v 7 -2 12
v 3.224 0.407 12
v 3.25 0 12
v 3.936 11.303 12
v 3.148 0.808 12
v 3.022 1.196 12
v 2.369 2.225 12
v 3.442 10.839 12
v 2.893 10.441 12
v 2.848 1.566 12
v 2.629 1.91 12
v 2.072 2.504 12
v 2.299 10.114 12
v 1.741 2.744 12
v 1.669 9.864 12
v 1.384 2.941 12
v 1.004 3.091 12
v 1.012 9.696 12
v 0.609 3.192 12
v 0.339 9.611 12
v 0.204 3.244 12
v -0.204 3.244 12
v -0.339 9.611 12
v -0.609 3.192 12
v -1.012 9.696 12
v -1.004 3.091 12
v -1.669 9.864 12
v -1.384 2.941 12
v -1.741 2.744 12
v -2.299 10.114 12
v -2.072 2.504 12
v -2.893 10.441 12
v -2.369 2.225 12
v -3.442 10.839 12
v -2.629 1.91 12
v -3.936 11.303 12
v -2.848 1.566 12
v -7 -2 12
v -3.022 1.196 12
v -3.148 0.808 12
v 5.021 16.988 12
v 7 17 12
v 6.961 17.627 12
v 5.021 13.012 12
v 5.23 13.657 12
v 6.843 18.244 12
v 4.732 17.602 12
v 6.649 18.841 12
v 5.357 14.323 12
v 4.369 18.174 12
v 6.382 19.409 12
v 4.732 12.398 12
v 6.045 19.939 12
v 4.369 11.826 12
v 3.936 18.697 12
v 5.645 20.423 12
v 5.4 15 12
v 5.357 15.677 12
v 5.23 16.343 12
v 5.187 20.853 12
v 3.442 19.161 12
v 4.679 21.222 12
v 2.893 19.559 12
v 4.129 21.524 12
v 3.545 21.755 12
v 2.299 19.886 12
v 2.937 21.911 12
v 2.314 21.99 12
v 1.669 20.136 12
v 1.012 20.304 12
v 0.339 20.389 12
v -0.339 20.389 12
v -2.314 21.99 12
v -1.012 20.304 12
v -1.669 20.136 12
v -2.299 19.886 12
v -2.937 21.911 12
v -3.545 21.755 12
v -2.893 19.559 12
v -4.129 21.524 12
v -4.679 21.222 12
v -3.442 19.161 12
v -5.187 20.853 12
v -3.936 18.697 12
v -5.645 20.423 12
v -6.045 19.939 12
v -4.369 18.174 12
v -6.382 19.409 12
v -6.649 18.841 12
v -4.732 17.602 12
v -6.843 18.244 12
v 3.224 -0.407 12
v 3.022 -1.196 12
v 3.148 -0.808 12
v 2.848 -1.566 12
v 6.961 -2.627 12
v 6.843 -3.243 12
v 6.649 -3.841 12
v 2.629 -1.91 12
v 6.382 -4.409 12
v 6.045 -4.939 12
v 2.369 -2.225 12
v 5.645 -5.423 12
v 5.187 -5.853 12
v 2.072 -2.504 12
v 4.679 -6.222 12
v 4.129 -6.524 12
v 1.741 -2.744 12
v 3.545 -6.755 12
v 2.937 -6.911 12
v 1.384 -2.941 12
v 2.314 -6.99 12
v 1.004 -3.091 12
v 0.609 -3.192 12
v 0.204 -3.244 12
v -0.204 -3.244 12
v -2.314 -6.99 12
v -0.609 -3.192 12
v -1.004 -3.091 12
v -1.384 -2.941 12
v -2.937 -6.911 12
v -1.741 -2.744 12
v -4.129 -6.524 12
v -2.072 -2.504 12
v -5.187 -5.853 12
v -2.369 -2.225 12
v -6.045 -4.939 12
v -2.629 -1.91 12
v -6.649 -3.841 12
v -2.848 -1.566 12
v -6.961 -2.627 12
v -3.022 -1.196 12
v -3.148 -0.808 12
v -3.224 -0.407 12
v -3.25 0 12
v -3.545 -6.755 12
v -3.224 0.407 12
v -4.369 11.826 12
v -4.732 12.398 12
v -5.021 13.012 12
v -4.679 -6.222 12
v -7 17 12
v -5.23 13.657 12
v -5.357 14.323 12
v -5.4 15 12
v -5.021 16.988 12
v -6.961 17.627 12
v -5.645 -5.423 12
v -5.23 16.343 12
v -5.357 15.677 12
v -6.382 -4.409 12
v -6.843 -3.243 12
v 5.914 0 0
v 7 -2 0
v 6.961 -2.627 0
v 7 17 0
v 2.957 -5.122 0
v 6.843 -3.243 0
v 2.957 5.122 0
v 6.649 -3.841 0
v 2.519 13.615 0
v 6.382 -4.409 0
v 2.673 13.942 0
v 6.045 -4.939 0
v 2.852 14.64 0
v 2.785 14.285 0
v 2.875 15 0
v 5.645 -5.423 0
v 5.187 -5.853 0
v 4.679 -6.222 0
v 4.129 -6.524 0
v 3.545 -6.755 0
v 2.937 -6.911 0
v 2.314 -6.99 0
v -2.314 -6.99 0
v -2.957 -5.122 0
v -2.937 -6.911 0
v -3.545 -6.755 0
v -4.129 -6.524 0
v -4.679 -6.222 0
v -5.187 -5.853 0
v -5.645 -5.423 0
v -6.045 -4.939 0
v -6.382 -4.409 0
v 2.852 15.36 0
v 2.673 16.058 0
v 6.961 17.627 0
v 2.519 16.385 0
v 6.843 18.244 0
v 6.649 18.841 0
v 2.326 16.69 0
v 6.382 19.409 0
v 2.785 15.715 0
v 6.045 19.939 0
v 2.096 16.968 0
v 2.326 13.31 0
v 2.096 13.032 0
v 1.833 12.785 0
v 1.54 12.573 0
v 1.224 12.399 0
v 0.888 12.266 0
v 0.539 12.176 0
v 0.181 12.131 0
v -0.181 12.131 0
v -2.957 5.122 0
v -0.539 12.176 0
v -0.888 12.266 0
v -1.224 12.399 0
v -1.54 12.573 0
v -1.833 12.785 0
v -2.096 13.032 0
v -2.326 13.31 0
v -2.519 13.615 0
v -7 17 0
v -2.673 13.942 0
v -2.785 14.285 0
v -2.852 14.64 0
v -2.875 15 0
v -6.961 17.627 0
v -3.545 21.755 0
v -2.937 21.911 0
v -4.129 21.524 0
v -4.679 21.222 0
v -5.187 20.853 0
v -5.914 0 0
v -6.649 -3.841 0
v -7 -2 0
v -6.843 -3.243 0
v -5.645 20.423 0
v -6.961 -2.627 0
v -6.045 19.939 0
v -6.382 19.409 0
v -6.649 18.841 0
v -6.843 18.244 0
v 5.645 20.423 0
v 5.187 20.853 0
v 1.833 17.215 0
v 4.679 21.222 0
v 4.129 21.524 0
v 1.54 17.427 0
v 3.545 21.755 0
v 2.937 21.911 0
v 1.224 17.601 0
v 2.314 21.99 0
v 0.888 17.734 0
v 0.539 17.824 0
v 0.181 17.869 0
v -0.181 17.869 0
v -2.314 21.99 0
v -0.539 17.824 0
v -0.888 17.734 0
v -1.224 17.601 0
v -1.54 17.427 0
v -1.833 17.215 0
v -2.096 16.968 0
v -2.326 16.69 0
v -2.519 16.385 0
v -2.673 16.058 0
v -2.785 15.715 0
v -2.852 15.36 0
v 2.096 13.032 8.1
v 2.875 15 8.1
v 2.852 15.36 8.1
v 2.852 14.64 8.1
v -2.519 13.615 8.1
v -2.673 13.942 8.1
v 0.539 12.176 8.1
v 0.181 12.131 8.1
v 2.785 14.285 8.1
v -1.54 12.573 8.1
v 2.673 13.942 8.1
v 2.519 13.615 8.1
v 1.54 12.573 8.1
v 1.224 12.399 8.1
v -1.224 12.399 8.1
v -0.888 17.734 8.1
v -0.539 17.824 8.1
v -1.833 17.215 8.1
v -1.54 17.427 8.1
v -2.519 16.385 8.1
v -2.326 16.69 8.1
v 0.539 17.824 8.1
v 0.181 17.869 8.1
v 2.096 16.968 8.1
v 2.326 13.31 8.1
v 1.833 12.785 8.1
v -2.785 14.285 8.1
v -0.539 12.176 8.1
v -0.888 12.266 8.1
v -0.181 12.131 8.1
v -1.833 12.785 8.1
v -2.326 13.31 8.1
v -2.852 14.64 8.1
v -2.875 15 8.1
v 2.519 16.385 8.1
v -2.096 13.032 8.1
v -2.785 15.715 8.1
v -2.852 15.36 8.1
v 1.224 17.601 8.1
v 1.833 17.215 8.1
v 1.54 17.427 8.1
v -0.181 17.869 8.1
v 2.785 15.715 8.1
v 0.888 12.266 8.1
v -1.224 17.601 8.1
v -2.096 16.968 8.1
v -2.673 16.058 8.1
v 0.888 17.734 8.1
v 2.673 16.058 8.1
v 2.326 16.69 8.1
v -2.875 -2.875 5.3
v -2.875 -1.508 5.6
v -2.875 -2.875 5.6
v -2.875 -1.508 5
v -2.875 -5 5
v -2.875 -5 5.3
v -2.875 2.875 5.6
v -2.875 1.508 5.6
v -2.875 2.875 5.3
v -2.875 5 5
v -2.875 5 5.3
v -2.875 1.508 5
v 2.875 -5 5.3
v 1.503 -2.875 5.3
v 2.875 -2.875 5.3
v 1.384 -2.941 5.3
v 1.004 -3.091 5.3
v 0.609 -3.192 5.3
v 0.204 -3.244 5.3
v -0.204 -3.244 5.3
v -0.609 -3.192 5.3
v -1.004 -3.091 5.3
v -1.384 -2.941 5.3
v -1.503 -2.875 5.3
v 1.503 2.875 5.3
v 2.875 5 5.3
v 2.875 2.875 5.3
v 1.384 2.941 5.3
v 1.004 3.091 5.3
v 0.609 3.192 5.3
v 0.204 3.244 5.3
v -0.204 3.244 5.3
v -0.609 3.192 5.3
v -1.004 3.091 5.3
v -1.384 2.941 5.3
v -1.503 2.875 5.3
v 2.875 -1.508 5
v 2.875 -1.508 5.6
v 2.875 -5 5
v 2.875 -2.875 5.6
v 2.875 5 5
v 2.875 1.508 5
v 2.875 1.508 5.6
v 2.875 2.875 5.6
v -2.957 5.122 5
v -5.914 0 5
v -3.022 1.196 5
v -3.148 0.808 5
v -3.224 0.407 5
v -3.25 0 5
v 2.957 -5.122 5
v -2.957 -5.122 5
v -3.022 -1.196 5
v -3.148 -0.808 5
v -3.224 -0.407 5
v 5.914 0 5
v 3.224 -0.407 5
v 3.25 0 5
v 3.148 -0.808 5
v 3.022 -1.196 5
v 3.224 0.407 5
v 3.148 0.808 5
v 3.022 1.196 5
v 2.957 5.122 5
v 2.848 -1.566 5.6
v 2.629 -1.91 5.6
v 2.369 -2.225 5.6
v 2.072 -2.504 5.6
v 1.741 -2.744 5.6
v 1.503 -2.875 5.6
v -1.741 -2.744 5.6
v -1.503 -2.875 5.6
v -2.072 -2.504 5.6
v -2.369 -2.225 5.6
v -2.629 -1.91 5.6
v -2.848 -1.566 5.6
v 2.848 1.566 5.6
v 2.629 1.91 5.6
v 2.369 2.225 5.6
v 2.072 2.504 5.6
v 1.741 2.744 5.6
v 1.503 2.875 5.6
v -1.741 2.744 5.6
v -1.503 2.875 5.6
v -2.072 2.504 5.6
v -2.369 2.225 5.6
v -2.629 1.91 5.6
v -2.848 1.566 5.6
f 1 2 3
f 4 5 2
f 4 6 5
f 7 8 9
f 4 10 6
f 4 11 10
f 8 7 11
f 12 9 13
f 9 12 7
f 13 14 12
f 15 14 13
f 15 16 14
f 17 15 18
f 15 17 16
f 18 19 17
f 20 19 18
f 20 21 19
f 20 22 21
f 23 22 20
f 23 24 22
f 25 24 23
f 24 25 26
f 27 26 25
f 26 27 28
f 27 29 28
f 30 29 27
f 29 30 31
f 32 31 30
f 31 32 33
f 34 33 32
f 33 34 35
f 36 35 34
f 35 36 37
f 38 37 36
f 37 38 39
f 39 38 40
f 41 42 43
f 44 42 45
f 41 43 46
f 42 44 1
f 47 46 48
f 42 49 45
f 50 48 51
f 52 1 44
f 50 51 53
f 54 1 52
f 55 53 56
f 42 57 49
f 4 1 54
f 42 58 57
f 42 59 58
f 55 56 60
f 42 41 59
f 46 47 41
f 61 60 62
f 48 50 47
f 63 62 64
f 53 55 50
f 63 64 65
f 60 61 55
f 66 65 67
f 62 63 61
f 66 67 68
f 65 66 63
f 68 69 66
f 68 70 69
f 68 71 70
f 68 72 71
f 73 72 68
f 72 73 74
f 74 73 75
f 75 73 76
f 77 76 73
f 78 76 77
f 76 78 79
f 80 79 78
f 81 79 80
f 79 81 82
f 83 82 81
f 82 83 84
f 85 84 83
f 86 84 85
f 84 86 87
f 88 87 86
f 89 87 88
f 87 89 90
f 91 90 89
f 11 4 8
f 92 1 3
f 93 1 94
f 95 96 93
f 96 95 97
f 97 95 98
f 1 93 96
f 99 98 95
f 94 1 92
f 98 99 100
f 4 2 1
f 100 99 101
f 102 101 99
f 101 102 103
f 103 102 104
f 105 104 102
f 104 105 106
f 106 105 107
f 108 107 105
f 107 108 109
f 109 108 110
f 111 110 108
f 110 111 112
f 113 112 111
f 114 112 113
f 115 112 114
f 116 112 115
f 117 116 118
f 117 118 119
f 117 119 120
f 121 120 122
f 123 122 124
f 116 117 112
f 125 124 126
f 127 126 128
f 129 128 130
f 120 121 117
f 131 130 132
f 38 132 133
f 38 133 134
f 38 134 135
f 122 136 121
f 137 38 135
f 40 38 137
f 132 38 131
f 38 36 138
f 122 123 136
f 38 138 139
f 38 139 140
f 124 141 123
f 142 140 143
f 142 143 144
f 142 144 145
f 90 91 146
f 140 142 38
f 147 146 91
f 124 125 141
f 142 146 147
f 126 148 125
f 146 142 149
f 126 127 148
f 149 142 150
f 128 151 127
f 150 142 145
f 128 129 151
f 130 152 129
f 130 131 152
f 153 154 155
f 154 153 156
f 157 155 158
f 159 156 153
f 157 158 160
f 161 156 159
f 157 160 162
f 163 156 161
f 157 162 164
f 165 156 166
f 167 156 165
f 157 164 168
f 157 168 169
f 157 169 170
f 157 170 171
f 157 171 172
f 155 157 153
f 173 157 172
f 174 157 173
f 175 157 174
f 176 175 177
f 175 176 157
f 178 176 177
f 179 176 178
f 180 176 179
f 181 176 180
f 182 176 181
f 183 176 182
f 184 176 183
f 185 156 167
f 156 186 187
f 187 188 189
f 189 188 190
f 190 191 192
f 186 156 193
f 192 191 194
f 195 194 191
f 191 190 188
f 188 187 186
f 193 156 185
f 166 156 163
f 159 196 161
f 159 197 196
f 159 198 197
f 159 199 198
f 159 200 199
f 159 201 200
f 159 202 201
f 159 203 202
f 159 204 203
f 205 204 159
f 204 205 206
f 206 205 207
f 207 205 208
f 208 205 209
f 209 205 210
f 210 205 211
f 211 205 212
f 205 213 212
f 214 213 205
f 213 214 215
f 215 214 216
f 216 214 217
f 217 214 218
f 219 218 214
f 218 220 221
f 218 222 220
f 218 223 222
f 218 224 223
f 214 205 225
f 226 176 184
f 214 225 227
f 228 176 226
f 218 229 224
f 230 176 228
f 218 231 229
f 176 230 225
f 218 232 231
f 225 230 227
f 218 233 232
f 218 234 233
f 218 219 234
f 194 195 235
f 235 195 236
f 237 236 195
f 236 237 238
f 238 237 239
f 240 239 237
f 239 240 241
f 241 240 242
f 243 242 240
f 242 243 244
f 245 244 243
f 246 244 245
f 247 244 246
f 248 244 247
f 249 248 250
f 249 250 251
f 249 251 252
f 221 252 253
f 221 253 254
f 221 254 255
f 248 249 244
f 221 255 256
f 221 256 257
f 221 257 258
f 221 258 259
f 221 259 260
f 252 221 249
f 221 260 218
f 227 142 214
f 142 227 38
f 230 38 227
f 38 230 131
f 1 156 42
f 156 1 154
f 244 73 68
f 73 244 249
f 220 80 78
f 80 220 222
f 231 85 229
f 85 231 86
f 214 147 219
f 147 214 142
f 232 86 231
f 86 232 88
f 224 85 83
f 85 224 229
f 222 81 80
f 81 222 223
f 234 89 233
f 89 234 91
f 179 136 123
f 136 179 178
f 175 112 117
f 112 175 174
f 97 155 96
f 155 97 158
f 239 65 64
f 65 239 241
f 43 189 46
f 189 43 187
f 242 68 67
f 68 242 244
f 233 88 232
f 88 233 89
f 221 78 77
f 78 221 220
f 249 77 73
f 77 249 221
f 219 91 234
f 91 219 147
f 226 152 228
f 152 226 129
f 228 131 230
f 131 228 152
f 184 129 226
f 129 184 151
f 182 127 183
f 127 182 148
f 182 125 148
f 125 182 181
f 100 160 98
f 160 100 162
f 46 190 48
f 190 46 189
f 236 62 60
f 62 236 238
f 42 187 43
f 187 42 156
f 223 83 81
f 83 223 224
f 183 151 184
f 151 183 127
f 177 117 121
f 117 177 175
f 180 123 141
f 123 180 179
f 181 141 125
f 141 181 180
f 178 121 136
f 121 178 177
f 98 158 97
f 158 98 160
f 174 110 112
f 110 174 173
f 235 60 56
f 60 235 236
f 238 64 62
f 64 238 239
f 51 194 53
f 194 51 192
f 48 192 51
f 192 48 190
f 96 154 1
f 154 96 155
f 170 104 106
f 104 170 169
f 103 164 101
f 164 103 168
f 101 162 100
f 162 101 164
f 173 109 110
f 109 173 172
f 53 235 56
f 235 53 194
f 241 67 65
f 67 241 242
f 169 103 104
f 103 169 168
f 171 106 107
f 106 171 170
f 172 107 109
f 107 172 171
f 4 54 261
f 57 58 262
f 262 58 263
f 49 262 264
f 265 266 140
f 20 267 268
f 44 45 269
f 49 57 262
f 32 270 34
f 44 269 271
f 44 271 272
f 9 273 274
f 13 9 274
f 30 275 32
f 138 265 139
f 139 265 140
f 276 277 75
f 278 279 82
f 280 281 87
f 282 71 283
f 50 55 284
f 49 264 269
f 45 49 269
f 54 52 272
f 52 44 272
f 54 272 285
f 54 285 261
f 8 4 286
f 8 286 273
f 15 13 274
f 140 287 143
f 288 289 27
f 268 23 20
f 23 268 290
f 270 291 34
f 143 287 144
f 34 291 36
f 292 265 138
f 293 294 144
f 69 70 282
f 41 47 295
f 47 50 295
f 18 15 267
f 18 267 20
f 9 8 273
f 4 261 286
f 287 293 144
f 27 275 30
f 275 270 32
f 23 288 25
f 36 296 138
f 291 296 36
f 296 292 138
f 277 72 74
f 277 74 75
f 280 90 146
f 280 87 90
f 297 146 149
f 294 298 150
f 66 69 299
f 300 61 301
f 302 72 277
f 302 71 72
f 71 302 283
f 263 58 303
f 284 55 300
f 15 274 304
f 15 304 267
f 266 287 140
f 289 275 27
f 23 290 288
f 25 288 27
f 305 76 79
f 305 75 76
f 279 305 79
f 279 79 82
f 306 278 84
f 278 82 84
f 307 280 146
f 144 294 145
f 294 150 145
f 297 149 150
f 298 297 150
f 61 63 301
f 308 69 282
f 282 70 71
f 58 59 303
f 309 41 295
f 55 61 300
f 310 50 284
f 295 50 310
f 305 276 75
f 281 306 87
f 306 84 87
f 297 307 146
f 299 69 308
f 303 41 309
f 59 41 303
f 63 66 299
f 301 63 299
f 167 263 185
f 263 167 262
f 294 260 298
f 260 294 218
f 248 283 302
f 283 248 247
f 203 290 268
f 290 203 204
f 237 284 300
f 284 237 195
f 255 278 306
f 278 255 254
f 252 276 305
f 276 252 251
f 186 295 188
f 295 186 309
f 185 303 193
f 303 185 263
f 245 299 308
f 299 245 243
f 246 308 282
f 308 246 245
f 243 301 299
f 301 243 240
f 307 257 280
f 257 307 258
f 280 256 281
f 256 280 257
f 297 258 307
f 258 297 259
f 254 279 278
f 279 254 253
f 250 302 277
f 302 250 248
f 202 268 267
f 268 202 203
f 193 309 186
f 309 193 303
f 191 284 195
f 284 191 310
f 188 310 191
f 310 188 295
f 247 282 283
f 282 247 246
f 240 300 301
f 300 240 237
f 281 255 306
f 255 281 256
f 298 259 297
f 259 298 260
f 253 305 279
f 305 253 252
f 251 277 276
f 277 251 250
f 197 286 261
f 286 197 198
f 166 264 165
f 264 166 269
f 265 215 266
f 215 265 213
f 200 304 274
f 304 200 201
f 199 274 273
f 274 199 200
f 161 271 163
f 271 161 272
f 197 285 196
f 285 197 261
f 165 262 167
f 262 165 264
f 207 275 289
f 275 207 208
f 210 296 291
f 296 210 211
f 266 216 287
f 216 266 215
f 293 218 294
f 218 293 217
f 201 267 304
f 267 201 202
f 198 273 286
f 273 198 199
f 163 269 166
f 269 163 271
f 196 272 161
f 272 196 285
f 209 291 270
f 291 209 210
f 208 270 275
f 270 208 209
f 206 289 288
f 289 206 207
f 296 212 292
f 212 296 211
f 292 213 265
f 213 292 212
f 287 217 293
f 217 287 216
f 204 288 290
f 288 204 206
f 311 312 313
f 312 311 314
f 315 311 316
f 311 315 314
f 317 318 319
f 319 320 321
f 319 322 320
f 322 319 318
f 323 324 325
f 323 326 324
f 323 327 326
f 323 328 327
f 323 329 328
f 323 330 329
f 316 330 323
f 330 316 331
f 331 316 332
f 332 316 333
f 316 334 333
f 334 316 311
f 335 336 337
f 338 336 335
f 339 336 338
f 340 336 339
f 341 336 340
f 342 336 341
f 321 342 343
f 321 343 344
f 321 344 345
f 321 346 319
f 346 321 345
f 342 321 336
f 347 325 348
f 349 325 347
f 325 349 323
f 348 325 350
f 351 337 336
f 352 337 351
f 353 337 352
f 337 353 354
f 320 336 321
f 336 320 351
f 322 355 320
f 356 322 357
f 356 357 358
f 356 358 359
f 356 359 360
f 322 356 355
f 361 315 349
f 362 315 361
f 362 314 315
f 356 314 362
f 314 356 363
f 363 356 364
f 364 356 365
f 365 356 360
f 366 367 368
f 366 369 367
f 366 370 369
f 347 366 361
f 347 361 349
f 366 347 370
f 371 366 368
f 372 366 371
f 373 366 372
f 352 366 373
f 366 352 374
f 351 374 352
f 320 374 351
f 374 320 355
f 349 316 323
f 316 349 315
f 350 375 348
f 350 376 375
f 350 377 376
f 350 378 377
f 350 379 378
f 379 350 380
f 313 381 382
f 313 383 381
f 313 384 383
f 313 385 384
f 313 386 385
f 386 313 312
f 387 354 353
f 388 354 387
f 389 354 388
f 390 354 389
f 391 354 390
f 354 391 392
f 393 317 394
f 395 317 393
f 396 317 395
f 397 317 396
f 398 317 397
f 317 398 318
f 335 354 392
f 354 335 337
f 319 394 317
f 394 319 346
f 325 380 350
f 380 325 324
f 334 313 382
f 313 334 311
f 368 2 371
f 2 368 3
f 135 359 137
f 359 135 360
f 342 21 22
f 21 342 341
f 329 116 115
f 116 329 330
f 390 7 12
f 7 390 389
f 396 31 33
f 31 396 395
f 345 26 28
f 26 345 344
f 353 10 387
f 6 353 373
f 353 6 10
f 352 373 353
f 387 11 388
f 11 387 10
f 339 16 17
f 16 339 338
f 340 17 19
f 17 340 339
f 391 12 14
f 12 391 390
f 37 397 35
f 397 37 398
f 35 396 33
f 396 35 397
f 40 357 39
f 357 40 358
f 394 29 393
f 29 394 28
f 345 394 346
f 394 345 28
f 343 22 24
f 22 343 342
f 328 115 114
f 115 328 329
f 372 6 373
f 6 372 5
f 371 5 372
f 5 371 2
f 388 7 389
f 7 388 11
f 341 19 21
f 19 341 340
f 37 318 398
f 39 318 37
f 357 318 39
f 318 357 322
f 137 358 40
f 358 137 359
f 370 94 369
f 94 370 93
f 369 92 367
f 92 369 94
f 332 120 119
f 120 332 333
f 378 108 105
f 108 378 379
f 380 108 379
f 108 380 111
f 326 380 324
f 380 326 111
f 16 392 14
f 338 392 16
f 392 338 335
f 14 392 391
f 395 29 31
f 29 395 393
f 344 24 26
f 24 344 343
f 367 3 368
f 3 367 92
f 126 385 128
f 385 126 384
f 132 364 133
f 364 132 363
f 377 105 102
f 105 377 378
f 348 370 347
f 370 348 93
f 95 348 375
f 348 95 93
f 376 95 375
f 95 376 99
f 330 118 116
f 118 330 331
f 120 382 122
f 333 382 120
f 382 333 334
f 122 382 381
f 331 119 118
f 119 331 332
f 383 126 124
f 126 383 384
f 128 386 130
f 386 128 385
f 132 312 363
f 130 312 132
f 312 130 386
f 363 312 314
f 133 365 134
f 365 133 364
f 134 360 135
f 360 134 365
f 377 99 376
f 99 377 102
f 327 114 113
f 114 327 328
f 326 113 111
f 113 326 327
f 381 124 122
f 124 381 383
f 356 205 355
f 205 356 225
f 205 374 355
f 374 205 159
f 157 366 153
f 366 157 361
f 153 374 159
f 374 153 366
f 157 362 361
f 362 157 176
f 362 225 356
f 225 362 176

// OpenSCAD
$fn = 50;


difference() {
	union() {
		cylinder(h = 12, r = 7.0000000000);
		translate(v = [0.0000000000, 7.5000000000, 0]) {
			hull() {
				translate(v = [-2.0000000000, 9.5000000000, 0]) {
					cylinder(h = 12, r = 5);
				}
				translate(v = [2.0000000000, 9.5000000000, 0]) {
					cylinder(h = 12, r = 5);
				}
				translate(v = [-2.0000000000, -9.5000000000, 0]) {
					cylinder(h = 12, r = 5);
				}
				translate(v = [2.0000000000, -9.5000000000, 0]) {
					cylinder(h = 12, r = 5);
				}
			}
		}
		translate(v = [0.0000000000, 7.5000000000, 0]) {
			hull() {
				translate(v = [-2.0000000000, 9.5000000000, 0]) {
					cylinder(h = 12, r = 5);
				}
				translate(v = [2.0000000000, 9.5000000000, 0]) {
					cylinder(h = 12, r = 5);
				}
				translate(v = [-2.0000000000, -9.5000000000, 0]) {
					cylinder(h = 12, r = 5);
				}
				translate(v = [2.0000000000, -9.5000000000, 0]) {
					cylinder(h = 12, r = 5);
				}
			}
		}
	}
	union() {
		translate(v = [0.0000000000, 15.0000000000, 12]) {
			rotate(a = [0, 0, 0]) {
				difference() {
					union() {
						#translate(v = [0, 0, -12.0000000000]) {
							cylinder(h = 12, r = 2.6000000000);
						}
						#translate(v = [0, 0, -3.9000000000]) {
							cylinder(h = 3.9000000000, r1 = 2.8750000000, r2 = 5.4000000000);
						}
						#translate(v = [0, 0, -12.0000000000]) {
							cylinder(h = 12, r = 2.8750000000);
						}
						#translate(v = [0, 0, -12.0000000000]) {
							cylinder(h = 12, r = 2.6000000000);
						}
					}
					union();
				}
			}
		}
		translate(v = [0.0000000000, 15.0000000000, 12]) {
			rotate(a = [0, 0, 0]) {
				difference() {
					union() {
						#translate(v = [0, 0, -12.0000000000]) {
							cylinder(h = 12, r = 2.6000000000);
						}
						#translate(v = [0, 0, -3.9000000000]) {
							cylinder(h = 3.9000000000, r1 = 2.8750000000, r2 = 5.4000000000);
						}
						#translate(v = [0, 0, -12.0000000000]) {
							cylinder(h = 12, r = 2.8750000000);
						}
						#translate(v = [0, 0, -12.0000000000]) {
							cylinder(h = 12, r = 2.6000000000);
						}
					}
					union();
				}
			}
		}
		translate(v = [0.0000000000, 0.0000000000, 0]) {
			rotate(a = [0, 0, 0]) {
				difference() {
					union() {
						#translate(v = [-2.8750000000, -5.0000000000, -0.3000000000]) {
							cube(size = [5.7500000000, 10, 0.3000000000]);
						}
						#translate(v = [-2.8750000000, -2.8750000000, -0.6000000000]) {
							cube(size = [5.7500000000, 5.7500000000, 0.3000000000]);
						}
						#translate(v = [-2.8750000000, -5.0000000000, 5]) {
							cube(size = [5.7500000000, 10, 0.3000000000]);
						}
						#translate(v = [-2.8750000000, -2.8750000000, 5.3000000000]) {
							cube(size = [5.7500000000, 5.7500000000, 0.3000000000]);
						}
						#translate(v = [0, 0, -100.0000000000]) {
							cylinder(h = 200, r = 3.2500000000);
						}
						#linear_extrude(height = 5) {
							polygon(points = [[5.9142500000, 0.0000000000], [2.9571250000, 5.1218907443], [-2.9571250000, 5.1218907443], [-5.9142500000, 0.0000000000], [-2.9571250000, -5.1218907443], [2.9571250000, -5.1218907443]]);
						}
						#translate(v = [-2.8750000000, -5.0000000000, -0.3000000000]) {
							cube(size = [5.7500000000, 10, 0.3000000000]);
						}
						#translate(v = [-2.8750000000, -2.8750000000, -0.6000000000]) {
							cube(size = [5.7500000000, 5.7500000000, 0.3000000000]);
						}
						#translate(v = [-2.8750000000, -5.0000000000, 5]) {
							cube(size = [5.7500000000, 10, 0.3000000000]);
						}
						#translate(v = [-2.8750000000, -2.8750000000, 5.3000000000]) {
							cube(size = [5.7500000000, 5.7500000000, 0.3000000000]);
						}
						#translate(v = [0, 0, -100.0000000000]) {
							cylinder(h = 200, r = 3.2500000000);
						}
						#translate(v = [-2.8750000000, -5.0000000000, -0.3000000000]) {
							cube(size = [5.7500000000, 10, 0.3000000000]);
						}
						#translate(v = [-2.8750000000, -2.8750000000, -0.6000000000]) {
							cube(size = [5.7500000000, 5.7500000000, 0.3000000000]);
						}
						#translate(v = [-2.8750000000, -5.0000000000, 5]) {
							cube(size = [5.7500000000, 10, 0.3000000000]);
						}
						#translate(v = [-2.8750000000, -2.8750000000, 5.3000000000]) {
							cube(size = [5.7500000000, 5.7500000000, 0.3000000000]);
						}
						#translate(v = [0, 0, -100.0000000000]) {
							cylinder(h = 200, r = 3.2500000000);
						}
					}
					union();
				}
			}
		}
		translate(v = [0, 0, -100]) {
			cylinder(h = 200, r = 3.2500000000);
		}
		translate(v = [0, 0, -100]) {
			cylinder(h = 200, r = 1.8000000000);
		}
	}
}
